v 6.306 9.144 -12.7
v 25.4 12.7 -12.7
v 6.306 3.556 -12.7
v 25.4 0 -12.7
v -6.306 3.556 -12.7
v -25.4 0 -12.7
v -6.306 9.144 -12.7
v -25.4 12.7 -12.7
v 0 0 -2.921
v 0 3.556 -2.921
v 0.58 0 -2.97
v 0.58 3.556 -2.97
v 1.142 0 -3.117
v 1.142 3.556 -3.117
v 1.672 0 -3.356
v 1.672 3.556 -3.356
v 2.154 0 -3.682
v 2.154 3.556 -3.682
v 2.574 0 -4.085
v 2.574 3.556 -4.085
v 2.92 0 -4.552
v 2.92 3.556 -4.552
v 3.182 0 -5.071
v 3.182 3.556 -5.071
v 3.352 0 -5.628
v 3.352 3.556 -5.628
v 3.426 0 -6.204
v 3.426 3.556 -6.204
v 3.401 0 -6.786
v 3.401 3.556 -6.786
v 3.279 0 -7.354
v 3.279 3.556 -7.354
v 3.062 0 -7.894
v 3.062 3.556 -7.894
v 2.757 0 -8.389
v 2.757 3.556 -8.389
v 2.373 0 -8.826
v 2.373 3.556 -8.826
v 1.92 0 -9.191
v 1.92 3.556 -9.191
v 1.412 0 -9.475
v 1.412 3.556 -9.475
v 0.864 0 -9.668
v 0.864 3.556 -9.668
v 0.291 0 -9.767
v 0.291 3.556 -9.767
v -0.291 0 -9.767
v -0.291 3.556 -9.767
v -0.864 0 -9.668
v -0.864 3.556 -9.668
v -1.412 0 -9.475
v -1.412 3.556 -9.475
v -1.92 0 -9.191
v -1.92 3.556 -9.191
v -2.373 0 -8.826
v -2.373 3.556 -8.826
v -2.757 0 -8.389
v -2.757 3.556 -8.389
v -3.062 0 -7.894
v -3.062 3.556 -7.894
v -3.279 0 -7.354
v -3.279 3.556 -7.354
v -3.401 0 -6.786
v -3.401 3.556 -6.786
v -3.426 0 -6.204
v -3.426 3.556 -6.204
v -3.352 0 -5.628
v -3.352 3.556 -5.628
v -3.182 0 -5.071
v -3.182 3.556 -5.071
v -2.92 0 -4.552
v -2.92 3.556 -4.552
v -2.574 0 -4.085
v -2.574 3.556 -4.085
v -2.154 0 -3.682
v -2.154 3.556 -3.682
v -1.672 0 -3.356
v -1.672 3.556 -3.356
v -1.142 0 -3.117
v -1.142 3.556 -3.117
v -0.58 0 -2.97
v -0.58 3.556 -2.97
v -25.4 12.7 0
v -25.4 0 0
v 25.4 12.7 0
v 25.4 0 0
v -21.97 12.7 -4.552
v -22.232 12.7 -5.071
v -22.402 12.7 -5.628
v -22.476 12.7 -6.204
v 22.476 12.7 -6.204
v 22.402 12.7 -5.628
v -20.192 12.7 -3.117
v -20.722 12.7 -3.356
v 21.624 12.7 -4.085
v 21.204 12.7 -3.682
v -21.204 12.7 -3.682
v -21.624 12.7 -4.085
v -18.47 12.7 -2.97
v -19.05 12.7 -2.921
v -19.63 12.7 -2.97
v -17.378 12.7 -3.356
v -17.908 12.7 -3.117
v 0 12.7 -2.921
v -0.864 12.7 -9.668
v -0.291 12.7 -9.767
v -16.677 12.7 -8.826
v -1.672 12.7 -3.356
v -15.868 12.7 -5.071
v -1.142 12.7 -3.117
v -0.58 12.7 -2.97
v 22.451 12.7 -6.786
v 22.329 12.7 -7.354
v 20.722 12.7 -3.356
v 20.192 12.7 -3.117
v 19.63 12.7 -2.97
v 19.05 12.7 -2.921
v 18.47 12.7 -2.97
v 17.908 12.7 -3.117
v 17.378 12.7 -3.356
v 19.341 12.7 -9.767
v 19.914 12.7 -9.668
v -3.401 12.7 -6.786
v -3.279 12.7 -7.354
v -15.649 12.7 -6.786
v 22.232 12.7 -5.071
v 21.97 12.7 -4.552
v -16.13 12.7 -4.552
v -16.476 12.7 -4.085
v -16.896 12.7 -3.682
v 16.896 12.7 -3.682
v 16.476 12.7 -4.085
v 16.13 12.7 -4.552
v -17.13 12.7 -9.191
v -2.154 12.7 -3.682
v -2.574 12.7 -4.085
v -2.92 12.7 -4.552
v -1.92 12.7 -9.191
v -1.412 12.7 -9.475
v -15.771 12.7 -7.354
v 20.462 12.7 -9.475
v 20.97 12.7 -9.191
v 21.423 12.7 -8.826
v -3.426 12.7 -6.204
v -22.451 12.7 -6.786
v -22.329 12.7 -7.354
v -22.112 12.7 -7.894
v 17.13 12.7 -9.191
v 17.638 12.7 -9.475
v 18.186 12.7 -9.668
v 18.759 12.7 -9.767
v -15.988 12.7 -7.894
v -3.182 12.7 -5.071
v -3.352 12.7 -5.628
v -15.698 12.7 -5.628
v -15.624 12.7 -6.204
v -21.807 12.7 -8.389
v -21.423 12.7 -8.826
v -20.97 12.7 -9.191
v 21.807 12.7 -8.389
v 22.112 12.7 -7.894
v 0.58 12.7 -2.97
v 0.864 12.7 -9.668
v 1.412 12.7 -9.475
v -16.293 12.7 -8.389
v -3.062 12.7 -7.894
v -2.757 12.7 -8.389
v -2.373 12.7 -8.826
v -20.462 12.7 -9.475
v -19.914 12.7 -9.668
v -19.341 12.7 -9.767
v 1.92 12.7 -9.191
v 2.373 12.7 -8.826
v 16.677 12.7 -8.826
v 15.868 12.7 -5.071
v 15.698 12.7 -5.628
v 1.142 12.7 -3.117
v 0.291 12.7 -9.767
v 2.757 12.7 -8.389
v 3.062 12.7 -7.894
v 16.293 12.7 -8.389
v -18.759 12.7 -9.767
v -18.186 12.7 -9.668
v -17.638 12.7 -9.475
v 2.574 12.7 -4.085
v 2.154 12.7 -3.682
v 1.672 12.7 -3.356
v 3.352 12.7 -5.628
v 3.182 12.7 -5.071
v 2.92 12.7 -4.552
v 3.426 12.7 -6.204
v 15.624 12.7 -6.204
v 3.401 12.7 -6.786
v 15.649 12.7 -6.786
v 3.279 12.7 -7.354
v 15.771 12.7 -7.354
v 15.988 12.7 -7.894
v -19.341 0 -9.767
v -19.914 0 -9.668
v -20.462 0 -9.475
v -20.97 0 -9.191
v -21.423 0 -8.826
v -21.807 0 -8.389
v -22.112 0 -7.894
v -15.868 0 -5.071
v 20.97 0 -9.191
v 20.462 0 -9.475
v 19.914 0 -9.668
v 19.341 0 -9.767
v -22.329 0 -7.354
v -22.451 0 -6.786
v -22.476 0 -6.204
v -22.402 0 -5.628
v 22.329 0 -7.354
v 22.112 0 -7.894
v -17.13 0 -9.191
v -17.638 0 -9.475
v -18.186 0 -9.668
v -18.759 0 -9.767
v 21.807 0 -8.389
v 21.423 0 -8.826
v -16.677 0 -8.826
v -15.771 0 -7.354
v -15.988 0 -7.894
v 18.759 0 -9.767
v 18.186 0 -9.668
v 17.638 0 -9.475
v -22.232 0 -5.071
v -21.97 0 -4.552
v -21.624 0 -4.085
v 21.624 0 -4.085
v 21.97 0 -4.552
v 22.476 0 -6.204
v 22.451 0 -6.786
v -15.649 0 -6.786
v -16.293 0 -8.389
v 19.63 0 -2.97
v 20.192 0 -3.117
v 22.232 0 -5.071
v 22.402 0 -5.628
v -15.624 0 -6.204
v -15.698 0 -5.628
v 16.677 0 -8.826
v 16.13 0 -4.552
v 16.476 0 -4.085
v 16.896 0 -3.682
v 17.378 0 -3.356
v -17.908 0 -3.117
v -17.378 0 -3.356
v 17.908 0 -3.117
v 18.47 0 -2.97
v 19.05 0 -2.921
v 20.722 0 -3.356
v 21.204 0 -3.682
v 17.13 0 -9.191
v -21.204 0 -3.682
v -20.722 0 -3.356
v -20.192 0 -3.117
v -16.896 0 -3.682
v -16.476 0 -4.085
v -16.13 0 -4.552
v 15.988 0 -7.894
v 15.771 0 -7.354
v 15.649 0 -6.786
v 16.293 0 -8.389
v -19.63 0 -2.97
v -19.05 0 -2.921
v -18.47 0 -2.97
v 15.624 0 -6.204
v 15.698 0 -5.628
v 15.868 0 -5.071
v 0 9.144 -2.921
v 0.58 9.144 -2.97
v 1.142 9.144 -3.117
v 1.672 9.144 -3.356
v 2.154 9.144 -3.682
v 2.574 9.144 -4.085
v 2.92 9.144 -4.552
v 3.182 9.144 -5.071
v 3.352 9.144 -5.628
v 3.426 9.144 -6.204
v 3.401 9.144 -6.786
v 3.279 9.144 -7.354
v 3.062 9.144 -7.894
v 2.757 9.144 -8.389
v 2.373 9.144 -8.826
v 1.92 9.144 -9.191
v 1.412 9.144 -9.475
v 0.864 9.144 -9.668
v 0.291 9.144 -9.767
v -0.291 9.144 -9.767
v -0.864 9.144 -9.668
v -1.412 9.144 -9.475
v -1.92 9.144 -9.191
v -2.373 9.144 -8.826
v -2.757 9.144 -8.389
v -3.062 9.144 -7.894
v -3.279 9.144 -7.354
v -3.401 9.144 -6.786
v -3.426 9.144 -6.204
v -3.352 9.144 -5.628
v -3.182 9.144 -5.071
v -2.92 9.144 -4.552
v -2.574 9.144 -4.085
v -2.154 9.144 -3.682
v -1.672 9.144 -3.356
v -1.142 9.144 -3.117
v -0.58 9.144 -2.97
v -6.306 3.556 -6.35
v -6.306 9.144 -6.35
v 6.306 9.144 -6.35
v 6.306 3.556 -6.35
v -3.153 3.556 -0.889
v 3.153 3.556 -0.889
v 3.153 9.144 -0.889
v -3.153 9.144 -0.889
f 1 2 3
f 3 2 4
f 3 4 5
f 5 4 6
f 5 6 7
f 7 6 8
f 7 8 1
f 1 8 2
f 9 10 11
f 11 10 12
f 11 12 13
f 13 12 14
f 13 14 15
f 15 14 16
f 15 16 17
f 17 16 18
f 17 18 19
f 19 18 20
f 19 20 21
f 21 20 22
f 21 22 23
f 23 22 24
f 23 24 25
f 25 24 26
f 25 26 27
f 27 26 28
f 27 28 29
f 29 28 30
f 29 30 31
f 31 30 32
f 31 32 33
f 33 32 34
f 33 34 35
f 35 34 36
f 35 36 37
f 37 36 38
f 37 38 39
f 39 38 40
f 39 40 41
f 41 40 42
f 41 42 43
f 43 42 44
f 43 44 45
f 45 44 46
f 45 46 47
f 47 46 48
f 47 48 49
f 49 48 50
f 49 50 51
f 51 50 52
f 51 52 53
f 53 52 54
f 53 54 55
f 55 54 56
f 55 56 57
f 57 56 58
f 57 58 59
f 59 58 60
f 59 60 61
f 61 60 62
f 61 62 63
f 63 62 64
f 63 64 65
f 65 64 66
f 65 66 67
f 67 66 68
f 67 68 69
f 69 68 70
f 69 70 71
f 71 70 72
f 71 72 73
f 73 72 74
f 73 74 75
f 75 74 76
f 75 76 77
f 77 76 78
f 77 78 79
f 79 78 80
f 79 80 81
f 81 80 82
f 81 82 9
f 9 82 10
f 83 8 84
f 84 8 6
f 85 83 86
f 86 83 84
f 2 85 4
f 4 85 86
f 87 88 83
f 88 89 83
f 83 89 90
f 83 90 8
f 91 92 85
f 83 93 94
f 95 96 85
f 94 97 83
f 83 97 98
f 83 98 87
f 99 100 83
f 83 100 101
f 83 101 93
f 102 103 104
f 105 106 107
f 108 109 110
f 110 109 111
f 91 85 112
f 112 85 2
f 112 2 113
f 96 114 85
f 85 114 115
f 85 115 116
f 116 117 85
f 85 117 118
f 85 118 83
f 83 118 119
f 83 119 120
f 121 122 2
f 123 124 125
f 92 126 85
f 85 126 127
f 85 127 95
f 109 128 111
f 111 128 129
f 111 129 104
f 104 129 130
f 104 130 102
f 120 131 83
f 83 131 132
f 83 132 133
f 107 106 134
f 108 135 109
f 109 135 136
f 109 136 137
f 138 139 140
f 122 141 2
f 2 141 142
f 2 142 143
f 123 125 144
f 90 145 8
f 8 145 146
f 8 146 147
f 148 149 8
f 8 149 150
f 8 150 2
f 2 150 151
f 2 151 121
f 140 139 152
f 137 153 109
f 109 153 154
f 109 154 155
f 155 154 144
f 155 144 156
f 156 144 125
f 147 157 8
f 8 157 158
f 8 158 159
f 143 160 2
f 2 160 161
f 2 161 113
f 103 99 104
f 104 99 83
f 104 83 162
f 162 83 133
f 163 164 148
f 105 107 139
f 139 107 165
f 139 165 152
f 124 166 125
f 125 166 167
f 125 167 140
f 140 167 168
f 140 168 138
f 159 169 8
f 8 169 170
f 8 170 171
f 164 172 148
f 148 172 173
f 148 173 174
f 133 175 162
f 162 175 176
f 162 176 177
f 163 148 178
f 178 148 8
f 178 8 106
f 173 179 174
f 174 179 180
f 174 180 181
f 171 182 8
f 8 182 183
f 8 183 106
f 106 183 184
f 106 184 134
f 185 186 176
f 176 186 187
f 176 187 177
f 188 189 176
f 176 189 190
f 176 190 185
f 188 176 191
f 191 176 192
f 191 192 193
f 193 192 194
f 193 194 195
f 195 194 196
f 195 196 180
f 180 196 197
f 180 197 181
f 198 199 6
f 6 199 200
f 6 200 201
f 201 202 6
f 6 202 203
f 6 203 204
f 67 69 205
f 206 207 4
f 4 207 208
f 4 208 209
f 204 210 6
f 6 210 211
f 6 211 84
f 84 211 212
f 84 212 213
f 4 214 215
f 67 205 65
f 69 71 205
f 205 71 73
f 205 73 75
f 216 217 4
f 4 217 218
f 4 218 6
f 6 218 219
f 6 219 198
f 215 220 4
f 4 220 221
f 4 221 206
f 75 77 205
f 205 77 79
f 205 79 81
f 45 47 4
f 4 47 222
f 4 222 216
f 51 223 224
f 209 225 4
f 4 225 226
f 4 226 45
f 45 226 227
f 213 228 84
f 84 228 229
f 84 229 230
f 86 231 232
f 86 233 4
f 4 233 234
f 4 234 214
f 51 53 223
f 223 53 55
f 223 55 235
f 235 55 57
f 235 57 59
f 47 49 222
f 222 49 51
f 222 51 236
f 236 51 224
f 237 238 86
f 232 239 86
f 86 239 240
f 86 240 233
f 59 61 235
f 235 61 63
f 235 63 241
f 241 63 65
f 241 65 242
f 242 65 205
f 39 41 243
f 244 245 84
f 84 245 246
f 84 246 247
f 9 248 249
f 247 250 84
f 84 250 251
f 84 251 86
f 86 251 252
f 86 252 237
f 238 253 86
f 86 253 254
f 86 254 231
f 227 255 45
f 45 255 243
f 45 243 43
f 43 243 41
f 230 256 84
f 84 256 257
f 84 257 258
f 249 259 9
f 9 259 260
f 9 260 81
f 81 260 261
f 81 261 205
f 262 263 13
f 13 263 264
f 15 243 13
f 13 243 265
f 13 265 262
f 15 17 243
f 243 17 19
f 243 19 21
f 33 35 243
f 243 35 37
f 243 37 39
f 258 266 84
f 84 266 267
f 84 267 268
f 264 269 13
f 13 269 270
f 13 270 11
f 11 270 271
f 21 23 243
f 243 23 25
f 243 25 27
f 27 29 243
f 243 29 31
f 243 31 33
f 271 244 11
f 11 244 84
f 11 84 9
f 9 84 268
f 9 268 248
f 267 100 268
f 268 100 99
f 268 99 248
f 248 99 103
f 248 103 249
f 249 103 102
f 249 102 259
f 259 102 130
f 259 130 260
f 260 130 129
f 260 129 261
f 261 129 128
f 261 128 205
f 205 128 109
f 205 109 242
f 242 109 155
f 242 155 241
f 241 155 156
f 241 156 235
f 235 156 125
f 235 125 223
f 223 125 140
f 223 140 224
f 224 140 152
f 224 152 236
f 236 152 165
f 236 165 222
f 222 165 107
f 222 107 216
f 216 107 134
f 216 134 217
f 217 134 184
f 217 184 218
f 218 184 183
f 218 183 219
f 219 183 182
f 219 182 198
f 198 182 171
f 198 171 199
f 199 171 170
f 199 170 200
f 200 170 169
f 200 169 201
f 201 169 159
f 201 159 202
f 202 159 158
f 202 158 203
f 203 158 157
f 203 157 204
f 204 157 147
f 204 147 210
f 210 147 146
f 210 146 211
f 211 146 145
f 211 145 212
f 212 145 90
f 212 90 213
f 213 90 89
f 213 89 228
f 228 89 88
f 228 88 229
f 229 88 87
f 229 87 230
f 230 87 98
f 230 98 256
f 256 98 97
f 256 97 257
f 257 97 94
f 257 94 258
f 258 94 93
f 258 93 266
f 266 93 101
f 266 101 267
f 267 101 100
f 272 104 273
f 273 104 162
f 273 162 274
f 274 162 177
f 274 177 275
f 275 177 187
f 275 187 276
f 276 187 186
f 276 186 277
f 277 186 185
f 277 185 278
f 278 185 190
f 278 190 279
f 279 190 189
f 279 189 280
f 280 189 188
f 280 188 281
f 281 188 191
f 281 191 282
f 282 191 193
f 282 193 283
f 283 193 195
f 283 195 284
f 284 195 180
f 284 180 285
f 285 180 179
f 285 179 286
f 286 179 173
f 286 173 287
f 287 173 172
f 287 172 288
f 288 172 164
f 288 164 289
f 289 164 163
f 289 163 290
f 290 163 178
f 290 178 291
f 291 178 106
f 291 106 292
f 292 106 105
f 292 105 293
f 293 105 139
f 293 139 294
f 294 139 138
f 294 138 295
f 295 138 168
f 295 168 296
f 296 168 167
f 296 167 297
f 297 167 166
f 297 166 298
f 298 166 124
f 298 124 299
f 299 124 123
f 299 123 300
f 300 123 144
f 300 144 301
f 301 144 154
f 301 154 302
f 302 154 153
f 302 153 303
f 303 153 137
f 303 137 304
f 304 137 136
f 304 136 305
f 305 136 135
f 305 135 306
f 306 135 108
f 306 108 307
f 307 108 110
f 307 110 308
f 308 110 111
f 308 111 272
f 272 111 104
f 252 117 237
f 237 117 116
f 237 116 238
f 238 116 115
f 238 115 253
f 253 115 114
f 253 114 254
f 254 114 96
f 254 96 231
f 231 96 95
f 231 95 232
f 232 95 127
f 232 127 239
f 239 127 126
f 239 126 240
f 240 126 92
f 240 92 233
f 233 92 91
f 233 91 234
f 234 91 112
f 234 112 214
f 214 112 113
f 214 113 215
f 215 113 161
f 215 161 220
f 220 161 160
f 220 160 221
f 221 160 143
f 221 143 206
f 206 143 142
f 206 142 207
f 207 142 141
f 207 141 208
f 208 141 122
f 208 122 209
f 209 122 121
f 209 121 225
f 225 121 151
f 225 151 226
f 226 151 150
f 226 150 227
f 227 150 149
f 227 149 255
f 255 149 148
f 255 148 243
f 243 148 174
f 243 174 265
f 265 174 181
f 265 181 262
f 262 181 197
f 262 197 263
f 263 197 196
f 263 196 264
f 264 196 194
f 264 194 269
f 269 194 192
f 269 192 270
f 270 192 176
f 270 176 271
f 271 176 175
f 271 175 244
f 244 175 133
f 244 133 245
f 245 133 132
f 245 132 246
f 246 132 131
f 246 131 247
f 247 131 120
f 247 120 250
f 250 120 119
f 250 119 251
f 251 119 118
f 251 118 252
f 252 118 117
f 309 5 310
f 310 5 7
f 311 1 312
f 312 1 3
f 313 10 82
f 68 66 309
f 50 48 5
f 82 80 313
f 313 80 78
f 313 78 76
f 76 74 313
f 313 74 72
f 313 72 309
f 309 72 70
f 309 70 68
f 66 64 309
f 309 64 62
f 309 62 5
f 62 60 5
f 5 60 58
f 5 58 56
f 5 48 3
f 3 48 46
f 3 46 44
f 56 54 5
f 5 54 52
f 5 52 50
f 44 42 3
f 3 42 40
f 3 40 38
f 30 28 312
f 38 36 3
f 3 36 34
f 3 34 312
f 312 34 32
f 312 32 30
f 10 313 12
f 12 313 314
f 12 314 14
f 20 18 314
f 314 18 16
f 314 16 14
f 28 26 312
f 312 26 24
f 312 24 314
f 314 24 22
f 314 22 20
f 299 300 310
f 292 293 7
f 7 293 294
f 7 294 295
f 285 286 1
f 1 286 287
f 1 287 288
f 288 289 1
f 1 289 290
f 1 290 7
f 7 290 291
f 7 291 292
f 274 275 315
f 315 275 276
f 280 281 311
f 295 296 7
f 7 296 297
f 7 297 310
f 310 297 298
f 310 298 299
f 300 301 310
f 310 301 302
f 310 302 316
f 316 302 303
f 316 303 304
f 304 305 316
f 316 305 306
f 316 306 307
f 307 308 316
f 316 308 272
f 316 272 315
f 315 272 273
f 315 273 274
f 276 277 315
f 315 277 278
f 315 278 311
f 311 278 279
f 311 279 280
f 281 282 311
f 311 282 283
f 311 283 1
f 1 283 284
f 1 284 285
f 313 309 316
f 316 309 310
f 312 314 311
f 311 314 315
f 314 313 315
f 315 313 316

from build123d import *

# Parameters (mm, degrees)
SKETCH1_W           = 50.8
SKETCH1_H           = 12.7
BOSS_EXTRUDE1_DEPTH = 12.7
SKETCH2_R           = 3.429
CUT_EXTRUDE1_DEPTH  = 32.108519733
CUT_EXTRUDE2_DEPTH  = 2.794


with BuildPart() as part:
    # Sketch1 → Boss-Extrude1 (new body)
    with BuildSketch(Plane(origin=(0, 0, 0), x_dir=(1, 0, 0), z_dir=(0, 1, 0))):
        with Locations((0, 6.35)):
            Rectangle(SKETCH1_W, SKETCH1_H)
    extrude(amount=BOSS_EXTRUDE1_DEPTH)

    # Sketch2 → Cut-Extrude1 (cut, through all)
    with BuildSketch(Plane(origin=(0, 12.7, 0), x_dir=(1, 0, 0), z_dir=(0, 1, 0))):
        with Locations(Location((-19.05, 6.35, 0), (0, 0, 270))):
            Circle(SKETCH2_R)
        with Locations(Location((19.05, 6.35, 0), (0, 0, 270))):
            Circle(SKETCH2_R)
        with Locations(Location((0, 6.35, 0), (0, 0, 270))):
            Circle(SKETCH2_R)
    extrude(amount=-CUT_EXTRUDE1_DEPTH, mode=Mode.SUBTRACT)

    # Sketch3 → Cut-Extrude2 (cut, symmetric)
    with BuildSketch(Plane(origin=(0, 6.35, 0), x_dir=(1, 0, 0), z_dir=(0, 1, 0))):
        Polygon((-6.30581964, 6.35), (-6.30581964, 19.396139052), (6.30581964, 19.396139052), (6.30581964, 6.35), (3.15290982, 0.889), (-3.15290982, 0.889), align=None)
    extrude(amount=CUT_EXTRUDE2_DEPTH, both=True, mode=Mode.SUBTRACT)


solid = part.part
